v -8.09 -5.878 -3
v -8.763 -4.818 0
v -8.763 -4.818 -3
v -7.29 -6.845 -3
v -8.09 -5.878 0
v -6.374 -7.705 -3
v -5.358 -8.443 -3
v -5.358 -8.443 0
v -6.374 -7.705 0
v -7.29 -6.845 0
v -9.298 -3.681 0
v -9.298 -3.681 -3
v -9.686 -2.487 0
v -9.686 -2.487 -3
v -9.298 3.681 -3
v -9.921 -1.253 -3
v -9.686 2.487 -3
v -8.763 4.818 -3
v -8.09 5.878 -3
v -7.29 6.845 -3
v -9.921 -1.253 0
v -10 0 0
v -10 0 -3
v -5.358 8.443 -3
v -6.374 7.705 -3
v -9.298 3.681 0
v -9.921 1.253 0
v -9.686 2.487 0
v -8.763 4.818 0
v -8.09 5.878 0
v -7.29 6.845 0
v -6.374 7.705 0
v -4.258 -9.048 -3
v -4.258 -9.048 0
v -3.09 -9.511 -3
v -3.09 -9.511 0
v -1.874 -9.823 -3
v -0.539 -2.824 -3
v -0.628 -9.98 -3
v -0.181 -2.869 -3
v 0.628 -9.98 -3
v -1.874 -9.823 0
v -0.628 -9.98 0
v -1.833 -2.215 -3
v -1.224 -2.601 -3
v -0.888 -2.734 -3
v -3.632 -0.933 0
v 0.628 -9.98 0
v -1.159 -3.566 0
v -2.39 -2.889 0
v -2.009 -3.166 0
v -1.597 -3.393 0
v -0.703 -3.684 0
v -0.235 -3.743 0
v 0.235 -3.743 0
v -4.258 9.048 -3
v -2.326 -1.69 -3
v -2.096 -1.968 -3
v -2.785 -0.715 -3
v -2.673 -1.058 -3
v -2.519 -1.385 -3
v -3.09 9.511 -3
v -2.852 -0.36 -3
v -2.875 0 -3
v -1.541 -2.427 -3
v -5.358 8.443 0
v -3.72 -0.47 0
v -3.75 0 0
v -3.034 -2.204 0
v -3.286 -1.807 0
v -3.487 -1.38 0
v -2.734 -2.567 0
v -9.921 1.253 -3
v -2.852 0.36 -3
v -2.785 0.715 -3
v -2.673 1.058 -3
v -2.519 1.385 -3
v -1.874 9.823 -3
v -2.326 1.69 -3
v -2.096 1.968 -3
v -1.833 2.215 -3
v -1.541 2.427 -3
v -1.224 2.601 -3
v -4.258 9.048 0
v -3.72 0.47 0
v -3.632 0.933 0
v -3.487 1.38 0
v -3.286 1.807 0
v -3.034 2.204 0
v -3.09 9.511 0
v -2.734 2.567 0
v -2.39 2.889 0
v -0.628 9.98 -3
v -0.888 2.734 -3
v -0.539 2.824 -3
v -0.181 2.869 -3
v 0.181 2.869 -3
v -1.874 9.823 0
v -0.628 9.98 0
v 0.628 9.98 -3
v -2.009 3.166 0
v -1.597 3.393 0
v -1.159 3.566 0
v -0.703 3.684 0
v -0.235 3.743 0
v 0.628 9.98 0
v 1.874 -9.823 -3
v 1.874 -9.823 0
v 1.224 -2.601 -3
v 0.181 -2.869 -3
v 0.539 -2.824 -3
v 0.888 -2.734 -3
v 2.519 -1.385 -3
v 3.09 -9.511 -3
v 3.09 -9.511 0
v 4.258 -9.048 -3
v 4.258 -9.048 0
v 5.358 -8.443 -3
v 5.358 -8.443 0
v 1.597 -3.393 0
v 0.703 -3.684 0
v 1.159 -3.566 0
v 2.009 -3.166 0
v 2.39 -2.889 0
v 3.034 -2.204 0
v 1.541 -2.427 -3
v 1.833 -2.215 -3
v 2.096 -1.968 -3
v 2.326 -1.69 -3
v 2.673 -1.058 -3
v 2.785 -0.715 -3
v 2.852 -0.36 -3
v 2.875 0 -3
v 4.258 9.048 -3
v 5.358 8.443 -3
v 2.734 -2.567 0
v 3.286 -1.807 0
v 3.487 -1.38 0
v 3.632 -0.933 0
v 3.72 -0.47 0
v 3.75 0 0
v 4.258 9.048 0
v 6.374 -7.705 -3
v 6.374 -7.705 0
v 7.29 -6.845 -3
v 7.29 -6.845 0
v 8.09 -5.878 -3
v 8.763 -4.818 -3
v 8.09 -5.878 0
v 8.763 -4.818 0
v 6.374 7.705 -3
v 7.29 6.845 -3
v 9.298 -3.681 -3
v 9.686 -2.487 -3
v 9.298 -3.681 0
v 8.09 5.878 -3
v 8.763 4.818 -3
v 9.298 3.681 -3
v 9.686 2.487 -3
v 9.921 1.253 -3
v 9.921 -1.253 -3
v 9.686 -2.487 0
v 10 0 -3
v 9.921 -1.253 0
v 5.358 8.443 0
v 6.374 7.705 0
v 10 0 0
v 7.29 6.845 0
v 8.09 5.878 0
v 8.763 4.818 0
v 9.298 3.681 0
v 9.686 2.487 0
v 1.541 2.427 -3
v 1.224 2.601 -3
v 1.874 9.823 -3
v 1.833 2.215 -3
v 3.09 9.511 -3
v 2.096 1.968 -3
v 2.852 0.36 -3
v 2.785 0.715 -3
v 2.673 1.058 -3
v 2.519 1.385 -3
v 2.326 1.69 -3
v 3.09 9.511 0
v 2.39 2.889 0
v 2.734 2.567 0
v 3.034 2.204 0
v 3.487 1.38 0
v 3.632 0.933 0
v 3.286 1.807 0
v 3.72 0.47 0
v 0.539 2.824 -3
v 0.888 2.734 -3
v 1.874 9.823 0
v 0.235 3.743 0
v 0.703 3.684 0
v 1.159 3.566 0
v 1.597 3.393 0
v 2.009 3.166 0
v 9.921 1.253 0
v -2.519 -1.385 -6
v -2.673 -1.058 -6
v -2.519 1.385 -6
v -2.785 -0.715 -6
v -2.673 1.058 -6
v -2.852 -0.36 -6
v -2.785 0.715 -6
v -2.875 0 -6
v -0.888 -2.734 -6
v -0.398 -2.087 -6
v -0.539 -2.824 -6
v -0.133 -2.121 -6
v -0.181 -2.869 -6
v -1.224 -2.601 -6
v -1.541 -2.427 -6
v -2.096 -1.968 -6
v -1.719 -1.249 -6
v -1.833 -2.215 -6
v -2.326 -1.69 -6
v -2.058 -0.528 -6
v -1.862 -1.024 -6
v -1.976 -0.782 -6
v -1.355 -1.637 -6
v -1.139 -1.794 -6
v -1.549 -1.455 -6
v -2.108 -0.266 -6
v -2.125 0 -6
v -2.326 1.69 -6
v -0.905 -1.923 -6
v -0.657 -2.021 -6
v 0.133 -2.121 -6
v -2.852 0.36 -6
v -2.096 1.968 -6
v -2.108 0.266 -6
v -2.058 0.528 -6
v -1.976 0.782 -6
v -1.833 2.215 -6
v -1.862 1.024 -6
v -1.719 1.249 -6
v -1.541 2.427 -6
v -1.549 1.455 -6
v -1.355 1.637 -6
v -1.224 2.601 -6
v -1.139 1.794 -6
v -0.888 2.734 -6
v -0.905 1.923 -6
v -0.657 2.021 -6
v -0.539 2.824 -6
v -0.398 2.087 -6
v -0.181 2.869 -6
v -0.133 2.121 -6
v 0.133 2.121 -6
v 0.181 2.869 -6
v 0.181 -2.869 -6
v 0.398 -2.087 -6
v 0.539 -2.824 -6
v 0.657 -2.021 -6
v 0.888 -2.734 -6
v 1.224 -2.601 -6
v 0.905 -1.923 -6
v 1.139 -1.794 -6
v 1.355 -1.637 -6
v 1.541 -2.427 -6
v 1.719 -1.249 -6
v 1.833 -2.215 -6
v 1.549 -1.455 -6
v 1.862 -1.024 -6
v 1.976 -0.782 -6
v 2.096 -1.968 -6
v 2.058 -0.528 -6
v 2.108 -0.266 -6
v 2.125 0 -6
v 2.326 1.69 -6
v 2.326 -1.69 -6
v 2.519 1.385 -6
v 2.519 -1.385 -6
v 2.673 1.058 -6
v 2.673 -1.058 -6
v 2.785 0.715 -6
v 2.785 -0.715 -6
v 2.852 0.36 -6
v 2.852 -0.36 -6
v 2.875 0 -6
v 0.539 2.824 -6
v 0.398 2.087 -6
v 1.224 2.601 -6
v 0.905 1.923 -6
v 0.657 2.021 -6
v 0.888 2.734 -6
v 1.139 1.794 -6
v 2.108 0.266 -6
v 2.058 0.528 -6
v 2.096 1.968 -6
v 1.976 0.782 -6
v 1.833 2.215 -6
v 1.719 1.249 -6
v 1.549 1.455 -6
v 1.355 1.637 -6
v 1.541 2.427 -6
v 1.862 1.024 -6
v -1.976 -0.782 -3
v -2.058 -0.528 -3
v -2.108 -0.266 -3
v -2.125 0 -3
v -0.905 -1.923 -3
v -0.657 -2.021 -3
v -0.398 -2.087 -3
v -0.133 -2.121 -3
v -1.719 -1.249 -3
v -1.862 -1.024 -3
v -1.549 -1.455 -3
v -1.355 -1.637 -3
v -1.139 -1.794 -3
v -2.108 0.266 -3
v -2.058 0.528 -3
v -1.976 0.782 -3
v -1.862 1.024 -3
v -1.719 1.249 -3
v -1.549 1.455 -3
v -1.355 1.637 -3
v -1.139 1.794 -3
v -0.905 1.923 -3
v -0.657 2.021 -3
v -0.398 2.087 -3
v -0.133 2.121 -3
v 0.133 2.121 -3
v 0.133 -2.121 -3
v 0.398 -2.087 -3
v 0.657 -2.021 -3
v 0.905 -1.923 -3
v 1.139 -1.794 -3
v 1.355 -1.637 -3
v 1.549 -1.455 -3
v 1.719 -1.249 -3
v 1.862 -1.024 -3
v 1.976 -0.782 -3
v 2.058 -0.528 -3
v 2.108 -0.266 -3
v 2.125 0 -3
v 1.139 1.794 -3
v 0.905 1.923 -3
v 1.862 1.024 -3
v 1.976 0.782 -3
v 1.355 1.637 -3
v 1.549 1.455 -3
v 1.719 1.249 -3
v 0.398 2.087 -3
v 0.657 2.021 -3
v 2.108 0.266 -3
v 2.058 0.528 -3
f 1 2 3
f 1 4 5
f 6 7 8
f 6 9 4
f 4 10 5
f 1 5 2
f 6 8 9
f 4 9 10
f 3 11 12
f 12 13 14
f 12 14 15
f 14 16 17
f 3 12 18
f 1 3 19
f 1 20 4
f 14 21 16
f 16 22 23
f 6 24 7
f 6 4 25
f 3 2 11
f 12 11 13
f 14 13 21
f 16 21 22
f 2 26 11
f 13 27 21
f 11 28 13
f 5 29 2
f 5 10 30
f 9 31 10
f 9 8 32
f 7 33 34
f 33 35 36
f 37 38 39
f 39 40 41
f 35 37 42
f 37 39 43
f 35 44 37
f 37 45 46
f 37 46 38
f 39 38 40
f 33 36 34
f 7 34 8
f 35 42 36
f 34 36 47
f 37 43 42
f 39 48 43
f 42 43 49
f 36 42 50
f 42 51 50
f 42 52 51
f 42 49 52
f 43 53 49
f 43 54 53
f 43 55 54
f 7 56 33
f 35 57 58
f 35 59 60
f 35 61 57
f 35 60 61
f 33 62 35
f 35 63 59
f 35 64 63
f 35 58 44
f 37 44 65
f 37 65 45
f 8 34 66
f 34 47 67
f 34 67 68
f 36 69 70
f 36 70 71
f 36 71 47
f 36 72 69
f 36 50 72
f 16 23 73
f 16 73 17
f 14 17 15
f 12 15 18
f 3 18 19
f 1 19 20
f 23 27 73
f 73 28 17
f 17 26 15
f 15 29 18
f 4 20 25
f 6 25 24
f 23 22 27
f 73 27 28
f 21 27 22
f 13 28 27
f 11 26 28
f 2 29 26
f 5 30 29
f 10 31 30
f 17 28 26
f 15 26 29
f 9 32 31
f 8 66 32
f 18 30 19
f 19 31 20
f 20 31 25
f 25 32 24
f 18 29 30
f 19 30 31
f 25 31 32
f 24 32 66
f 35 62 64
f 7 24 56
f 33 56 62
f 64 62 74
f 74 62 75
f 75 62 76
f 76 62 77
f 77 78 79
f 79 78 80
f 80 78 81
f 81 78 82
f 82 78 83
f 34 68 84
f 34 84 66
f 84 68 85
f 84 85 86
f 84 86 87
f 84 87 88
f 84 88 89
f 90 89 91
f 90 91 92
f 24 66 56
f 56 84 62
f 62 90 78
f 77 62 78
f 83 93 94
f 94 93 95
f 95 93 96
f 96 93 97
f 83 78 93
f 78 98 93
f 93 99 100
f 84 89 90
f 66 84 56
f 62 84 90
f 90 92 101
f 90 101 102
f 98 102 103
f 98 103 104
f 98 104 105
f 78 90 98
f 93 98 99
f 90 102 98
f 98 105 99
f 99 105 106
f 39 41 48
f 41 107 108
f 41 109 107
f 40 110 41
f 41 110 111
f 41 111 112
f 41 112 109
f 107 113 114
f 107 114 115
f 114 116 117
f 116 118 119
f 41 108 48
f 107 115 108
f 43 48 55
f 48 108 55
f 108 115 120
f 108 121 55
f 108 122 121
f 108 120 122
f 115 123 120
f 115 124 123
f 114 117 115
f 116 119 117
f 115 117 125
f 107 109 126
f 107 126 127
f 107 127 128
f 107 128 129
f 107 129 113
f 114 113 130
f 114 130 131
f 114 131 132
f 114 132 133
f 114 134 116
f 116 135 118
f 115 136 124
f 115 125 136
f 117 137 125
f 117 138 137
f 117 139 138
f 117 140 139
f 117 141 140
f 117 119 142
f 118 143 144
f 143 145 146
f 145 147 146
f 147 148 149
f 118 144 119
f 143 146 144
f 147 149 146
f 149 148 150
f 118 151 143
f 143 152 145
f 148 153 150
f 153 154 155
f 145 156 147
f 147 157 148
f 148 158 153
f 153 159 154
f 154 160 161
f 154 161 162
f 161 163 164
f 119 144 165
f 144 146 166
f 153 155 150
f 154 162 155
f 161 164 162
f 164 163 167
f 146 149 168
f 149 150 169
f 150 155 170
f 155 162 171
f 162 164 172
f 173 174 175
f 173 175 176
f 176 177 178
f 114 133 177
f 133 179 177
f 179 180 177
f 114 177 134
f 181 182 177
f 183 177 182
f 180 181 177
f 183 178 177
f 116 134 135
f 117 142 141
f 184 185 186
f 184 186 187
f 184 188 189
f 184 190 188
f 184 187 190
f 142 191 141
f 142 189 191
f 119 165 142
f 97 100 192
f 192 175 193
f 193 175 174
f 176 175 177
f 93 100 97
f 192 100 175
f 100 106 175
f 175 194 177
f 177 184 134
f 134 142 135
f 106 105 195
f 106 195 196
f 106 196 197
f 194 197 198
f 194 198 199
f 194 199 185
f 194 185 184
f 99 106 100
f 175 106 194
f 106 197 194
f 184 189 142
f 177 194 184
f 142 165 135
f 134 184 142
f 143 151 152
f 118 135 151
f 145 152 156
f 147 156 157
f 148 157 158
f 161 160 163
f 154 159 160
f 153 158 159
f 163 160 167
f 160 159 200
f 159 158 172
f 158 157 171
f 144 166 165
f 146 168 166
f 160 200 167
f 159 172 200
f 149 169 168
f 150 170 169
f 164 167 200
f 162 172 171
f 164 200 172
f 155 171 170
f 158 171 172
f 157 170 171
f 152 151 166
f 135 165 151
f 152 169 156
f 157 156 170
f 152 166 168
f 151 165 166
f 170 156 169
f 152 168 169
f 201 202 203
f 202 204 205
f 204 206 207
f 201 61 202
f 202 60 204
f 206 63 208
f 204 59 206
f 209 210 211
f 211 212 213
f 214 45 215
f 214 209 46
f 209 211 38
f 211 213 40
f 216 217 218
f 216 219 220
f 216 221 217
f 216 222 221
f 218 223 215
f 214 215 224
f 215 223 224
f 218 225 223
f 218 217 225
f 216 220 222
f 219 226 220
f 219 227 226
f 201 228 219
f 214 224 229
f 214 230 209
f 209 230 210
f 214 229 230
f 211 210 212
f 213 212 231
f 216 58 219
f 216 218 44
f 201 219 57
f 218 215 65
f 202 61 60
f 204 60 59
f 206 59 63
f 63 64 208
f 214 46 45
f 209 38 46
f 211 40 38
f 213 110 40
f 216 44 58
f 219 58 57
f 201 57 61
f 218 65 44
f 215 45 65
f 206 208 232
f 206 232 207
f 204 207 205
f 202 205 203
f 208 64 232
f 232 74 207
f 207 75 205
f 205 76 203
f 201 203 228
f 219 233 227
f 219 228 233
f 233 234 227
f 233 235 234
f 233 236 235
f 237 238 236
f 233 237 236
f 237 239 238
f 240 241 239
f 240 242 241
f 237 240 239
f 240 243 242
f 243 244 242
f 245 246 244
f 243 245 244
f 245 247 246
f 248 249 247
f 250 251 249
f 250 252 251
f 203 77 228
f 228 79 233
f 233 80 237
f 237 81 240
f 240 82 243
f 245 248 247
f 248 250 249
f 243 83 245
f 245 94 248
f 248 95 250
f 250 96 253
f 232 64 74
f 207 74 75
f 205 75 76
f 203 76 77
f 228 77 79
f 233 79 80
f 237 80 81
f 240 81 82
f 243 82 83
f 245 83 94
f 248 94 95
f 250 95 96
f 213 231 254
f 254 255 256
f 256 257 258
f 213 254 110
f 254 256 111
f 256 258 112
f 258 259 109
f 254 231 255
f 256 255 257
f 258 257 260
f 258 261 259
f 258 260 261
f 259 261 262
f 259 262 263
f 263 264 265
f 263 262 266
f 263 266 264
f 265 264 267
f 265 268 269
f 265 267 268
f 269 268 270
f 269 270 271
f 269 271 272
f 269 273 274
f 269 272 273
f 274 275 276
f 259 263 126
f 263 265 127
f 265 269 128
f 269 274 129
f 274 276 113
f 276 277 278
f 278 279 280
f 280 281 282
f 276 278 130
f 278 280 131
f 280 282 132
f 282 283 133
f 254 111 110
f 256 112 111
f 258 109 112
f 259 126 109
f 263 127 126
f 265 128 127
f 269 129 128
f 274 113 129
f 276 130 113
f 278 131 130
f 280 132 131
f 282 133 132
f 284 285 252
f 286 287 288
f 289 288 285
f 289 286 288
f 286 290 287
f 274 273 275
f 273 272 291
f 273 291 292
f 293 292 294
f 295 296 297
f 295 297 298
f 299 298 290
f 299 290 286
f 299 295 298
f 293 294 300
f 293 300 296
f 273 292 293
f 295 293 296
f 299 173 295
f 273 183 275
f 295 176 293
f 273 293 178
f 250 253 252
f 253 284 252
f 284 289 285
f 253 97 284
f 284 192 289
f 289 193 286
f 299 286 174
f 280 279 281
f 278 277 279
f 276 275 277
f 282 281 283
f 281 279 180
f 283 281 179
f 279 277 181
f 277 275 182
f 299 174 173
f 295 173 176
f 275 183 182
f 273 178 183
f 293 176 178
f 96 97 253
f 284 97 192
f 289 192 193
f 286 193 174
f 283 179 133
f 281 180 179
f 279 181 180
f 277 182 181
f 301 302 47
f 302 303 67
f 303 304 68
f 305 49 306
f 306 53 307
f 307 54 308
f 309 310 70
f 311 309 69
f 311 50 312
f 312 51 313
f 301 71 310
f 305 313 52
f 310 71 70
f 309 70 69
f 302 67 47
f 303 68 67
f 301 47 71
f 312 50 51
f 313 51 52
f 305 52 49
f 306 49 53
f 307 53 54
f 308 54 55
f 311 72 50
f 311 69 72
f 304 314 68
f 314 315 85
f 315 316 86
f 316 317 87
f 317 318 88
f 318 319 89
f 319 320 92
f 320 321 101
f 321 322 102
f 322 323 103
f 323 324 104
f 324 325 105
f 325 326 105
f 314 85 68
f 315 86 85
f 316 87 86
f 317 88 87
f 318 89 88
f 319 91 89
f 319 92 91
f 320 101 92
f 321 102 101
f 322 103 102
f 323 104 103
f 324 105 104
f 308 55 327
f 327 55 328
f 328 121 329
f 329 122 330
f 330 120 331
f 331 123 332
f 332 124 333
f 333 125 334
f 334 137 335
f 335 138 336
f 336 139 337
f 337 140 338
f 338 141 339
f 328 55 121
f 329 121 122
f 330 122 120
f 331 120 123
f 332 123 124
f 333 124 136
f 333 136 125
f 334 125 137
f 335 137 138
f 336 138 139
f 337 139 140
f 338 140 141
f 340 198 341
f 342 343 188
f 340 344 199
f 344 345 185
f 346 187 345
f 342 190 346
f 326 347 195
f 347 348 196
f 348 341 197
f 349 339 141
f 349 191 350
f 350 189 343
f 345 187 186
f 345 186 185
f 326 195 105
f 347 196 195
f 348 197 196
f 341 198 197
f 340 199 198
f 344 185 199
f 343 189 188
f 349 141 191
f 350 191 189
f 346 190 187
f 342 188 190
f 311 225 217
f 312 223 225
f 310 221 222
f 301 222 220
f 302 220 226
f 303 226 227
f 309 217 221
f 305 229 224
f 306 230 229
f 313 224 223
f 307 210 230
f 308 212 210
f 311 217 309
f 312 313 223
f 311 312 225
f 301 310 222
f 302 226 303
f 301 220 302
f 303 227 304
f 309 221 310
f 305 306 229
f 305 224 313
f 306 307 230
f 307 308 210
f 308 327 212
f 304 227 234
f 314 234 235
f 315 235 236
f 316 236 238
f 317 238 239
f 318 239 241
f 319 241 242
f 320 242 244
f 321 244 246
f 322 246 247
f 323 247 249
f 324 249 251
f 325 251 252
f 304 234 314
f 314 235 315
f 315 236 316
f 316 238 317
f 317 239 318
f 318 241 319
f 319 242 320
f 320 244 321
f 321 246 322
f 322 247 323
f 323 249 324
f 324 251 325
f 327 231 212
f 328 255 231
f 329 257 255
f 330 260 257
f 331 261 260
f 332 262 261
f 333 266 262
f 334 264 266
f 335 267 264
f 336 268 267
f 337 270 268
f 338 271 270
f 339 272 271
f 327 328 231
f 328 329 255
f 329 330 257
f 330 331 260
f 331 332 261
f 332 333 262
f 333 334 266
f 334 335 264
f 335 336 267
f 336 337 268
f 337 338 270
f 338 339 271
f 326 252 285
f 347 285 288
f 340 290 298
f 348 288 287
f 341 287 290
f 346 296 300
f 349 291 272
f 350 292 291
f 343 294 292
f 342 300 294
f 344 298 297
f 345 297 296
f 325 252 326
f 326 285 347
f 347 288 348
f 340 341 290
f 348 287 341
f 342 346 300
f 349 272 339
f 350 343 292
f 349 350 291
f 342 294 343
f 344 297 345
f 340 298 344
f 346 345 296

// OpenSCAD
$fn = 50;


difference() {
	union() {
		translate(v = [0, 0, -3.0000000000]) {
			cylinder(h = 3, r = 10.0000000000);
		}
		#translate(v = [0, 0, -6.0000000000]) {
			cylinder(h = 6, r = 2.8750000000);
		}
	}
	union() {
		translate(v = [0, 0, 0]) {
			rotate(a = [0, 0, 0]) {
				difference() {
					union() {
						translate(v = [0, 0, -6.0000000000]) {
							cylinder(h = 6, r = 2.0000000000);
						}
						translate(v = [0, 0, -3]) {
							cylinder(h = 3, r1 = 2.1250000000, r2 = 3.7500000000);
						}
						translate(v = [0, 0, -6.0000000000]) {
							cylinder(h = 6, r = 2.1250000000);
						}
						translate(v = [0, 0, -6.0000000000]) {
							cylinder(h = 6, r = 2.0000000000);
						}
					}
					union();
				}
			}
		}
	}
}
